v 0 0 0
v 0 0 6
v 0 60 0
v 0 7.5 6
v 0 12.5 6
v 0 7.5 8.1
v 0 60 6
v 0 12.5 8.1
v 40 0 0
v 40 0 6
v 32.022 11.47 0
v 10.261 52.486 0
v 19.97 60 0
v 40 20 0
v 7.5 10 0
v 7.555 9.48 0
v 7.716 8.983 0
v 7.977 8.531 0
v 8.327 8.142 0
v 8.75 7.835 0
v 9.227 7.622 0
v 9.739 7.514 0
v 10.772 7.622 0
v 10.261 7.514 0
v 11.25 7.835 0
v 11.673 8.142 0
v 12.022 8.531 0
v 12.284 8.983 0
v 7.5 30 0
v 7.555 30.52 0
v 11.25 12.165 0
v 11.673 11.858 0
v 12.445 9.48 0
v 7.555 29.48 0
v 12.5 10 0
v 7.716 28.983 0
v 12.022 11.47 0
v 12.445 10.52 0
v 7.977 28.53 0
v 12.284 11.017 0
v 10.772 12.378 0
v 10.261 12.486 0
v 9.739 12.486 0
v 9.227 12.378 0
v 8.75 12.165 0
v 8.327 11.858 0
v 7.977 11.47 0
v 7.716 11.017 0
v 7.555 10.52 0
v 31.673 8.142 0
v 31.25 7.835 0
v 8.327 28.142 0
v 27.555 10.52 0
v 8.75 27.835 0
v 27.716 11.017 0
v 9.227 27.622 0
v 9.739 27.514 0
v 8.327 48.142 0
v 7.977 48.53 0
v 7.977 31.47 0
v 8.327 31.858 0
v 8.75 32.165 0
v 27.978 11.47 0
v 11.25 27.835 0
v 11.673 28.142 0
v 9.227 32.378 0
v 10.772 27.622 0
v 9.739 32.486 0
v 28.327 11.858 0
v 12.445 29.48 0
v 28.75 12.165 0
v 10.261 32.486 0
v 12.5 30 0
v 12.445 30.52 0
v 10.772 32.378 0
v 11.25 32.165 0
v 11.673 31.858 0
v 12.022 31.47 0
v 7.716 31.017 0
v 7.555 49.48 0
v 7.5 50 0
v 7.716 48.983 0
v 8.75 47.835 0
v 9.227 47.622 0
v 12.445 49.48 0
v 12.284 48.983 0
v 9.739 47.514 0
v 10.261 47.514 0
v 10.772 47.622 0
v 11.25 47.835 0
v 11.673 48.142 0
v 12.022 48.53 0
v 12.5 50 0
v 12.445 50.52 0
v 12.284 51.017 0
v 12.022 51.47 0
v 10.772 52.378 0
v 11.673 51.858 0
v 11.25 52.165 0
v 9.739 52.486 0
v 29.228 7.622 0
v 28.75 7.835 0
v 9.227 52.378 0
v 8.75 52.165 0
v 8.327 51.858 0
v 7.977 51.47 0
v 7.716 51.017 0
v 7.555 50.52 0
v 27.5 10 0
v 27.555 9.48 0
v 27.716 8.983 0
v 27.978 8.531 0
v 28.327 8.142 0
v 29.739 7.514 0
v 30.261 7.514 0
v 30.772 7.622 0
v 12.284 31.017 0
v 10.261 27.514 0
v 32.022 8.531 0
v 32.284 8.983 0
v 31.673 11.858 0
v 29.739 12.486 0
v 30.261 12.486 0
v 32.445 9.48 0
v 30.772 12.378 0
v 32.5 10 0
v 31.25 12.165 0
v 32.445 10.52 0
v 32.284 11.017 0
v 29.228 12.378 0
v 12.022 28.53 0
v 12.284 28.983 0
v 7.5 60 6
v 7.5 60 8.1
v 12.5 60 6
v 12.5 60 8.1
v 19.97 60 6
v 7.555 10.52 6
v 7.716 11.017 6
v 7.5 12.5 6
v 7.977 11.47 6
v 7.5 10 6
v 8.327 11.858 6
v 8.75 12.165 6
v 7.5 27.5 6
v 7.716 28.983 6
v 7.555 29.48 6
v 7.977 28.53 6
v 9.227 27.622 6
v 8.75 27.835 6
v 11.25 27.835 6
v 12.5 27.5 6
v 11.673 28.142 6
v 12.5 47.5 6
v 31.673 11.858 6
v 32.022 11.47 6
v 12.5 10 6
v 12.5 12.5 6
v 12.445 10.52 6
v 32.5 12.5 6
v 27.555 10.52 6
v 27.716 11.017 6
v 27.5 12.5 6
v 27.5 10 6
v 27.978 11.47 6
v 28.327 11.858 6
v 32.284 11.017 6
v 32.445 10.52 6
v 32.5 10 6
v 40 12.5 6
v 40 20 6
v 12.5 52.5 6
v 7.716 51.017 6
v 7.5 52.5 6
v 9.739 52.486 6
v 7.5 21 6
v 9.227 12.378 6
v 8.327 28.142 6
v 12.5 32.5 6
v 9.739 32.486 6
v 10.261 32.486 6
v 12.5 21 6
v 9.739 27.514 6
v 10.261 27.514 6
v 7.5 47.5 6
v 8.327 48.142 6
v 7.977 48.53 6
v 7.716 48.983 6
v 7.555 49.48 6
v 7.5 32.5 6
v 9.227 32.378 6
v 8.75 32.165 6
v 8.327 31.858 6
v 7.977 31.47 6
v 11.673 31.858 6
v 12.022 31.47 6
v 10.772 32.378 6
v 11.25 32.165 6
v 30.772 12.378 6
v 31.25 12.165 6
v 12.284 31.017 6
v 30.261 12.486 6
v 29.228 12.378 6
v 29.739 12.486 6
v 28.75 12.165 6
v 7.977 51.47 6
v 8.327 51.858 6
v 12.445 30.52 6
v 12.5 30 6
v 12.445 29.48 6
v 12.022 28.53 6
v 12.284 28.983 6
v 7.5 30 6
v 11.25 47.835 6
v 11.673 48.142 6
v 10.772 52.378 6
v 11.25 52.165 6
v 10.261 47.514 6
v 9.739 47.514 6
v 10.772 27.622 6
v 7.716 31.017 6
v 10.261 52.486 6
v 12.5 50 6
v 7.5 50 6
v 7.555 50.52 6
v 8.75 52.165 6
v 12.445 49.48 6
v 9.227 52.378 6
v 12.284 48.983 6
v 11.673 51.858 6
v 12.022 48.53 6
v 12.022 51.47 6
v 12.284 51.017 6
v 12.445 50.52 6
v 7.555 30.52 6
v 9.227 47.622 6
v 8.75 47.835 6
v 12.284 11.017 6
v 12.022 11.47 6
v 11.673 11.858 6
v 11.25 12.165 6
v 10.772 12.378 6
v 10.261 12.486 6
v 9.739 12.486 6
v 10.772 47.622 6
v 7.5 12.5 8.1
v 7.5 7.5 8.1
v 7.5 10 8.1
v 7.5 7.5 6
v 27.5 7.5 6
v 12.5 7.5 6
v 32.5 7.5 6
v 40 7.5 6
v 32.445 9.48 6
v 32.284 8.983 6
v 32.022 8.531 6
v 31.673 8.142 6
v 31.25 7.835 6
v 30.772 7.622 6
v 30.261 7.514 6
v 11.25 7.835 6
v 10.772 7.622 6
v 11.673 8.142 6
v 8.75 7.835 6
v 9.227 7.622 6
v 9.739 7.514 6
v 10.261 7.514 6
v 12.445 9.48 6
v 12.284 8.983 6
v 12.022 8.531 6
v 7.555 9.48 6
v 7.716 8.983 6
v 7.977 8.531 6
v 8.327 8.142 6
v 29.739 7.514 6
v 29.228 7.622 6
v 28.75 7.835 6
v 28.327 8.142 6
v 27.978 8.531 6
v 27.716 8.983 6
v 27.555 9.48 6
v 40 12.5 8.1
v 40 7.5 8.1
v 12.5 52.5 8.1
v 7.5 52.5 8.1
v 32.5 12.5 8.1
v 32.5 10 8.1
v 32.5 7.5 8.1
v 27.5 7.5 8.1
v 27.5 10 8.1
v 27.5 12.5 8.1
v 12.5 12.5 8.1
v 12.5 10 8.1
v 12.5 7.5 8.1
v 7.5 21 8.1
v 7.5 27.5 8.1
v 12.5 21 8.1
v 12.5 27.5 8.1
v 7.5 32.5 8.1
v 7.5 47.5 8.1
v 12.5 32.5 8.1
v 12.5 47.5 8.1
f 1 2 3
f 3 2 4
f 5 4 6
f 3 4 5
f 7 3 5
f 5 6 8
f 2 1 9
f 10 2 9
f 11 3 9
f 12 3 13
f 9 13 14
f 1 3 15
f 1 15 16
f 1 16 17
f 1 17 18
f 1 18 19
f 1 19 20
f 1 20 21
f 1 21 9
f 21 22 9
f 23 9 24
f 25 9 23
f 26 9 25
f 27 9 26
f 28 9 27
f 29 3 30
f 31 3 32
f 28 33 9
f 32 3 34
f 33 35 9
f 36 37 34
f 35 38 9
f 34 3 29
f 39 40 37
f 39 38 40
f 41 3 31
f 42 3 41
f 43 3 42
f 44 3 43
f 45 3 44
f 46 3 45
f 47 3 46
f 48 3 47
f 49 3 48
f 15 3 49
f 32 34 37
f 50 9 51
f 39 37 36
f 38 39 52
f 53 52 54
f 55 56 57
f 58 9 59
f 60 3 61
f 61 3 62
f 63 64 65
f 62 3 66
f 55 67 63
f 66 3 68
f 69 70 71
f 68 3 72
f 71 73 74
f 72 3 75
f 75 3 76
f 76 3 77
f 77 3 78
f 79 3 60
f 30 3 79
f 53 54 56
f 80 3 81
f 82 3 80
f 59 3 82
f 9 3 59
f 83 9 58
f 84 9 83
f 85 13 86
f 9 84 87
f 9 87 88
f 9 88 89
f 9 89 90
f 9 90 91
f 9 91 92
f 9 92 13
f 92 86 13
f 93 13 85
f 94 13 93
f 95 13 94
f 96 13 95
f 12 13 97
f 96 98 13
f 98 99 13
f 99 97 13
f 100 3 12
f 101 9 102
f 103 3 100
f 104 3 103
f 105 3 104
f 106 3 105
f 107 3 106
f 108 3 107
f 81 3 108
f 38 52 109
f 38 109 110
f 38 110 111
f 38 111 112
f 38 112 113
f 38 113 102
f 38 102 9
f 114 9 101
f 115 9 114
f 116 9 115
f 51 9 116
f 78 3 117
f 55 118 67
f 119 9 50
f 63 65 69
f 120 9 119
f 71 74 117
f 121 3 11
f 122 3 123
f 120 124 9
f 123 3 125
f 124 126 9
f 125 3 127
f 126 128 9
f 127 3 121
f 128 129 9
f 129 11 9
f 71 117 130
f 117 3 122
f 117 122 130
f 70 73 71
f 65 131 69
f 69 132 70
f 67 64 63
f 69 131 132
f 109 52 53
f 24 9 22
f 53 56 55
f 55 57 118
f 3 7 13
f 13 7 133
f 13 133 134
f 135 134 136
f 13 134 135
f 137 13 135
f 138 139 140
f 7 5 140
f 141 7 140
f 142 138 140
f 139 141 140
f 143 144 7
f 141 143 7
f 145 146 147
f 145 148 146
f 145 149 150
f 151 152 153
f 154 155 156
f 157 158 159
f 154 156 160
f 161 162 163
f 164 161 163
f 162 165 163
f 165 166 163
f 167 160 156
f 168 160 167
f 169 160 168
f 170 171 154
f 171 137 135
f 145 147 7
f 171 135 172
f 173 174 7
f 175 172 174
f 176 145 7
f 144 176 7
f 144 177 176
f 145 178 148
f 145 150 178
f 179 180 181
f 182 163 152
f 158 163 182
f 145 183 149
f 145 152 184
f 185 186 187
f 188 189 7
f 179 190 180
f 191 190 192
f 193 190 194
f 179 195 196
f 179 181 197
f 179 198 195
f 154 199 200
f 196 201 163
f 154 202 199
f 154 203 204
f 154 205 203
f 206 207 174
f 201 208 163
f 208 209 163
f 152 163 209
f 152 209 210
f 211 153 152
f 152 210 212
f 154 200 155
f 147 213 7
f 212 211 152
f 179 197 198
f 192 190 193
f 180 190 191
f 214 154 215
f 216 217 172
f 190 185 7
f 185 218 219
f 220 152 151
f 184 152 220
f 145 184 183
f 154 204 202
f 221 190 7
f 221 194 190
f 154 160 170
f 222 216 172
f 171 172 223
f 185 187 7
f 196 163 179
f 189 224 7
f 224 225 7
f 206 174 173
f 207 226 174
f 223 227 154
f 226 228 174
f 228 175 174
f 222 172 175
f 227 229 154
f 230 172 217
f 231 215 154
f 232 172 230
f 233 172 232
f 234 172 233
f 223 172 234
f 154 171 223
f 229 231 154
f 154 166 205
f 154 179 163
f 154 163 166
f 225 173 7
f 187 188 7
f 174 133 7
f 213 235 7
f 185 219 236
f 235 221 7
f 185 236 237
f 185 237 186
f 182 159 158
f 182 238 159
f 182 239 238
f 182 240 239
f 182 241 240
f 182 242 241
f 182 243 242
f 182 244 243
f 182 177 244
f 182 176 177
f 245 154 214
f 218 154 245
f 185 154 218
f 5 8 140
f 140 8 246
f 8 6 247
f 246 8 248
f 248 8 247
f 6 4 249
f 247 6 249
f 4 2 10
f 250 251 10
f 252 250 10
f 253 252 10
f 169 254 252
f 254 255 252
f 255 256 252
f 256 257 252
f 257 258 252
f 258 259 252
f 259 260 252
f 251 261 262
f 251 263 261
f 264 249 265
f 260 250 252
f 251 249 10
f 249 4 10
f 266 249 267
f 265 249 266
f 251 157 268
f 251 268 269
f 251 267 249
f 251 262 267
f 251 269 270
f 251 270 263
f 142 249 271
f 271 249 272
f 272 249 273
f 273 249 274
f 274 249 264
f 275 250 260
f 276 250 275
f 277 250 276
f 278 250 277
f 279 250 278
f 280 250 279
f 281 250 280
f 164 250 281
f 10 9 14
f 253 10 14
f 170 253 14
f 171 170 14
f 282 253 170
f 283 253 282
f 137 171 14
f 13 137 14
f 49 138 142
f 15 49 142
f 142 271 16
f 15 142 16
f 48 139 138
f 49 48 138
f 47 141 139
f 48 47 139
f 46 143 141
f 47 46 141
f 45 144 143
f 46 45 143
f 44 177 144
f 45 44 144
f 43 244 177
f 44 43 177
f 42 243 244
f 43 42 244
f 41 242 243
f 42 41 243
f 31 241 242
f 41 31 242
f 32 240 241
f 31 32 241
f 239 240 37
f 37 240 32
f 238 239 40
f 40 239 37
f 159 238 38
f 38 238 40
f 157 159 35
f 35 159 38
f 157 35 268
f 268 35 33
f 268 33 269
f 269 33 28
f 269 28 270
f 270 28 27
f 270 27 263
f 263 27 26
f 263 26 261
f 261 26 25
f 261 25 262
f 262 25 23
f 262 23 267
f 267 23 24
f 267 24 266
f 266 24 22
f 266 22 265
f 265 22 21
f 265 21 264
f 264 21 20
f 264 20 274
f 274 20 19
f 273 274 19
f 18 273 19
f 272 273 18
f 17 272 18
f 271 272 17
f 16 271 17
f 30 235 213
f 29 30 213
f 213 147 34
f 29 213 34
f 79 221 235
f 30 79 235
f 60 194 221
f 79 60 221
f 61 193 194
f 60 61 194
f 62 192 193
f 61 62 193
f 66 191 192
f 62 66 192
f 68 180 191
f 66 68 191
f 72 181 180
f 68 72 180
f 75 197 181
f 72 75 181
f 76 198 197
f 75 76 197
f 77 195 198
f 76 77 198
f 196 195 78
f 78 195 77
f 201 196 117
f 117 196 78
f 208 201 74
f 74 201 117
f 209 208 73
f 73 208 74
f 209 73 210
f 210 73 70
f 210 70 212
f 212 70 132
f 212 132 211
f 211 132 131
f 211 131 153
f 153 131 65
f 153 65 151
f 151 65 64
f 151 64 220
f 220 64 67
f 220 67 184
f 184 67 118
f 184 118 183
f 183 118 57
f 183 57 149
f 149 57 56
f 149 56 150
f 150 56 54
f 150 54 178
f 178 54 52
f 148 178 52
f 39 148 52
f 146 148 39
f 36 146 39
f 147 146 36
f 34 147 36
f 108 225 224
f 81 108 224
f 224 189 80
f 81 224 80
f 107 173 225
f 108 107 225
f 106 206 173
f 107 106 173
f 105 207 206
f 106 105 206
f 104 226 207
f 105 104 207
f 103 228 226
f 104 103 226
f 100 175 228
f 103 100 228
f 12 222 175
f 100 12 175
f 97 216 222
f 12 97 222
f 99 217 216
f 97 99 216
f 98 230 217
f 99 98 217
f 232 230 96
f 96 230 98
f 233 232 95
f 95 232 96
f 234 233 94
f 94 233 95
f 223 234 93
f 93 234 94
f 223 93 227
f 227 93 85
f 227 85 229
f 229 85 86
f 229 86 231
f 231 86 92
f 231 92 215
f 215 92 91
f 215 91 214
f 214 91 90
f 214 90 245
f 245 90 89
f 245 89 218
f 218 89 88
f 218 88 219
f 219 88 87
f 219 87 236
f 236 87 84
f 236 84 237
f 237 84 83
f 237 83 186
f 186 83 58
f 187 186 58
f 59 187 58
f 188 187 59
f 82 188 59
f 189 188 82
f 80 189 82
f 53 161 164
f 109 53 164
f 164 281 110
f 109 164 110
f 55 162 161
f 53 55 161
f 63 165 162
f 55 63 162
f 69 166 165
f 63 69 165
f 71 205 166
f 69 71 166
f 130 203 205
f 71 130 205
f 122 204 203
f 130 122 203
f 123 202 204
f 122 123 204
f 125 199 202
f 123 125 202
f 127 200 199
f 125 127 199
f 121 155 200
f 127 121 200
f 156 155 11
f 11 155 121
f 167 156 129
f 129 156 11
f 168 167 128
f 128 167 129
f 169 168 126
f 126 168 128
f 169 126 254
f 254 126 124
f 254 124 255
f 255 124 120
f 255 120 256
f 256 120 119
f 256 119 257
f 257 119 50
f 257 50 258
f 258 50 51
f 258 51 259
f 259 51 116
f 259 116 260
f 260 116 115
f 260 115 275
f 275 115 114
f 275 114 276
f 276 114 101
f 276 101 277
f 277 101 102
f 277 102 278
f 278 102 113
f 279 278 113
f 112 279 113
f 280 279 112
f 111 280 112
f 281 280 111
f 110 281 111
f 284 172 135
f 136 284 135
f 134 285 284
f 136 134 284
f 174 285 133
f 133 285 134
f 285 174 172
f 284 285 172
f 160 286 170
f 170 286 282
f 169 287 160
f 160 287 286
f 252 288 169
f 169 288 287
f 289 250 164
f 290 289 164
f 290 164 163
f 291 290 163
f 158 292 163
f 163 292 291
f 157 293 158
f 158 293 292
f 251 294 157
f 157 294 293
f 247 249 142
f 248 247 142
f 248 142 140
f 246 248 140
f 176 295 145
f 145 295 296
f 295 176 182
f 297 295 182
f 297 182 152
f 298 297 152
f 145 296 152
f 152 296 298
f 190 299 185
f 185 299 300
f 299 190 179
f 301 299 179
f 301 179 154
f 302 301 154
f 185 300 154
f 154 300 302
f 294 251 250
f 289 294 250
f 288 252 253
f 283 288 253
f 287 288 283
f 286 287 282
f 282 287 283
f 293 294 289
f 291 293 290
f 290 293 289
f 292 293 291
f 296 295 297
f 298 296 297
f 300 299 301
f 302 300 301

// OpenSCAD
// file: functions.scad
// PRUSA Mendel  
// Functions used in many files
// GNU GPL v2
// Josef Průša
// josefprusa@me.com
// prusadjs.cz
// http://www.reprap.org/wiki/Prusa_Mendel
// http://github.com/prusajr/PrusaMendel

module nut(d,h,horizontal=true){
cornerdiameter =  (d / 2) / cos (180 / 6);
cylinder(h = h, r = cornerdiameter, $fn = 6);
if(horizontal){
for(i = [1:6]){
	rotate([0,0,60*i]) translate([-cornerdiameter-0.2,0,0]) rotate([0,0,-45]) cube(size = [2,2,h]);
}}
}

// By nophead
module polyhole(d,h) {
    n = max(round(2 * d),3);
    rotate([0,0,180])
        cylinder(h = h, r = (d / 2) / cos (180 / n), $fn = n);
}

module roundcorner(diameter){
	difference(){
		cube(size = [diameter,diameter,99], center = false);
		translate(v = [diameter, diameter, 0]) cylinder(h = 100, r=diameter, center=true);
	}
}
// file: metric.scad
// PRUSA Mendel  
// Default metric sizes
// GNU GPL v2
// Josef Průša
// josefprusa@me.com
// prusadjs.cz
// http://www.reprap.org/wiki/Prusa_Mendel
// http://github.com/prusajr/PrusaMendel

// DONT CHANGE THIS FILE! ALTER VALUES IN CONFIGURATION.SCAD INSTEAD

// RODS

threaded_rod_diameter = 8;
threaded_rod_diameter_horizontal = 8;
smooth_bar_diameter = 8;
smooth_bar_diameter_horizontal = 8;

// Nuts and bolts

m8_diameter = 8;
m8_nut_diameter = 14.5;

m4_diameter = 4;
m4_nut_diameter = 7.5;

m3_diameter = 3;
m3_nut_diameter = 5;

// Bushing holder

bushing_core_diameter = smooth_bar_diameter;
bushing_material_thickness = 1;

// Motors

motor_shaft = 5.1;
// file: configuration.scad
// PRUSA Mendel  
// Configuration file
// GNU GPL v2
// Josef Průša
// josefprusa@me.com
// prusadjs.cz
// http://www.reprap.org/wiki/Prusa_Mendel
// http://github.com/prusajr/PrusaMendel

// PLEASE SELECT ONE OF THE CONFIGURATIONS BELOW
// BY UN-COMMENTING IT

// Uncomment for metric settings
// METRIC METRIC METRIC METRIC METRIC METRIC METRIC METRIC 

include <metric.scad>;

// Uncomment for imperial settings
// IMPERIAL IMPERIAL IMPERIAL IMPERIAL IMPERIAL IMPERIAL IMPERIAL 

//include <sae.scad>;

//thin_wall = 3;
// LM8UU
//linear = false;

// override settings by customizing below
// CUSTOM CUSTOM CUSTOM CUSTOM CUSTOM CUSTOM CUSTOM CUSTOM CUSTOM

threaded_rod_diameter = 8.2;
threaded_rod_diameter_horizontal = 8.2;
smooth_bar_diameter = 8.3;
smooth_bar_diameter_horizontal = 8.3;

// Nuts and bolts

m8_diameter = 8.3;
m8_nut_diameter = 15;

m4_diameter = 4.2;
m4_nut_diameter = 9;

m3_diameter = 3.3;
m3_nut_diameter = 5.8;

///counted stuff
m3_nut_diameter_bigger = ((m3_nut_diameter  / 2) / cos (180 / 6))*2;

// functions 
include <functions.scad>
// main file
// C. Strang		
// cstrang@????
// funfor.us

include <configuration.scad>;

//h = 14;      //height 14 for normal "thick" parts
h = 6;		// height 6 for "thin" parts

t = 2;		// tab thickness 2 is normal, -1 to remove
o = 0.1;	//  overlap amount for error free STLs


$fn=30;

translate([0, 0, 0]) prism90(h,t,5);
//translate([-3,0,0]) mirror() prism90(h,t,5);

module prism90(th,st,hd)
{
	difference()
	{
		union()
		{
			cube([40,60,th]);
			// slots tabs
			translate([0,7.5,th-o]) cube([7.5,5,st+2*o]);
			translate([12.5,7.5,th-o]) cube([15,5,st+2*o]);
			translate([32.5,7.5,th-o]) cube([7.5,5,st+2*o]);
			translate([7.5,21,th-o]) cube([5,6.5,st+2*o]);
			translate([7.5,32.5,th-o]) cube([5,15,st+2*o]);
			translate([7.5,52.5,th-o]) cube([5,7.5,st+2*o]);

		}
		
		translate([40,20,-o]) rotate([0,0,26.6]) cube([30,50,th+2*o]);
		// holes
		translate([10,10,-o]) cylinder(r=hd/2,h=th+4);
		translate([30,10,-o]) cylinder(r=hd/2,h=th+4);
		translate([10,30,-o]) cylinder(r=hd/2,h=th+4);
		translate([10,50,-o]) cylinder(r=hd/2,h=th+4);
	}

}
